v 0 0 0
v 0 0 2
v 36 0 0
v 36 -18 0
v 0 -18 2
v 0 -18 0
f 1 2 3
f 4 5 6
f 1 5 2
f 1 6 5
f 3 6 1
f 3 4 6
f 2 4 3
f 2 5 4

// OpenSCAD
$fn=80;
DEPTH=36;
WIDTH=18;
HEIGHT=2;

angle=atan(HEIGHT/DEPTH);

module full_wedge(height) {
    rotate([90,0,0]) {
        linear_extrude(height=WIDTH) {
            polygon(points=[[0,0],[DEPTH,0],[0,height]]);
        }
    }
}

full_wedge(HEIGHT);
